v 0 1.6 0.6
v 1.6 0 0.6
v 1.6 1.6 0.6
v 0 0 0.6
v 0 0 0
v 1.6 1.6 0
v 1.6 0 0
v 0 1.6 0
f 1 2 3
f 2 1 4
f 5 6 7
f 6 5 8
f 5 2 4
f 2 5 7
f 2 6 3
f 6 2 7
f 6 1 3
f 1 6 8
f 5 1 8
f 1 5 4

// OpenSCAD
/* Warning, this is a very basic generator with a lot of approximation 
input data : [UQFN, LZA, 1.6x1.6x0.6mm, 12, , A, C04-01172A]
generated by com.zoubworld.electronics.cad.model3d.Basic
Date : Sun Feb 15 10:50:49 CET 2026
*/

//body
color("black")
translate([0,0,0])
cube([1.6,1.6,0.6], center=false);
